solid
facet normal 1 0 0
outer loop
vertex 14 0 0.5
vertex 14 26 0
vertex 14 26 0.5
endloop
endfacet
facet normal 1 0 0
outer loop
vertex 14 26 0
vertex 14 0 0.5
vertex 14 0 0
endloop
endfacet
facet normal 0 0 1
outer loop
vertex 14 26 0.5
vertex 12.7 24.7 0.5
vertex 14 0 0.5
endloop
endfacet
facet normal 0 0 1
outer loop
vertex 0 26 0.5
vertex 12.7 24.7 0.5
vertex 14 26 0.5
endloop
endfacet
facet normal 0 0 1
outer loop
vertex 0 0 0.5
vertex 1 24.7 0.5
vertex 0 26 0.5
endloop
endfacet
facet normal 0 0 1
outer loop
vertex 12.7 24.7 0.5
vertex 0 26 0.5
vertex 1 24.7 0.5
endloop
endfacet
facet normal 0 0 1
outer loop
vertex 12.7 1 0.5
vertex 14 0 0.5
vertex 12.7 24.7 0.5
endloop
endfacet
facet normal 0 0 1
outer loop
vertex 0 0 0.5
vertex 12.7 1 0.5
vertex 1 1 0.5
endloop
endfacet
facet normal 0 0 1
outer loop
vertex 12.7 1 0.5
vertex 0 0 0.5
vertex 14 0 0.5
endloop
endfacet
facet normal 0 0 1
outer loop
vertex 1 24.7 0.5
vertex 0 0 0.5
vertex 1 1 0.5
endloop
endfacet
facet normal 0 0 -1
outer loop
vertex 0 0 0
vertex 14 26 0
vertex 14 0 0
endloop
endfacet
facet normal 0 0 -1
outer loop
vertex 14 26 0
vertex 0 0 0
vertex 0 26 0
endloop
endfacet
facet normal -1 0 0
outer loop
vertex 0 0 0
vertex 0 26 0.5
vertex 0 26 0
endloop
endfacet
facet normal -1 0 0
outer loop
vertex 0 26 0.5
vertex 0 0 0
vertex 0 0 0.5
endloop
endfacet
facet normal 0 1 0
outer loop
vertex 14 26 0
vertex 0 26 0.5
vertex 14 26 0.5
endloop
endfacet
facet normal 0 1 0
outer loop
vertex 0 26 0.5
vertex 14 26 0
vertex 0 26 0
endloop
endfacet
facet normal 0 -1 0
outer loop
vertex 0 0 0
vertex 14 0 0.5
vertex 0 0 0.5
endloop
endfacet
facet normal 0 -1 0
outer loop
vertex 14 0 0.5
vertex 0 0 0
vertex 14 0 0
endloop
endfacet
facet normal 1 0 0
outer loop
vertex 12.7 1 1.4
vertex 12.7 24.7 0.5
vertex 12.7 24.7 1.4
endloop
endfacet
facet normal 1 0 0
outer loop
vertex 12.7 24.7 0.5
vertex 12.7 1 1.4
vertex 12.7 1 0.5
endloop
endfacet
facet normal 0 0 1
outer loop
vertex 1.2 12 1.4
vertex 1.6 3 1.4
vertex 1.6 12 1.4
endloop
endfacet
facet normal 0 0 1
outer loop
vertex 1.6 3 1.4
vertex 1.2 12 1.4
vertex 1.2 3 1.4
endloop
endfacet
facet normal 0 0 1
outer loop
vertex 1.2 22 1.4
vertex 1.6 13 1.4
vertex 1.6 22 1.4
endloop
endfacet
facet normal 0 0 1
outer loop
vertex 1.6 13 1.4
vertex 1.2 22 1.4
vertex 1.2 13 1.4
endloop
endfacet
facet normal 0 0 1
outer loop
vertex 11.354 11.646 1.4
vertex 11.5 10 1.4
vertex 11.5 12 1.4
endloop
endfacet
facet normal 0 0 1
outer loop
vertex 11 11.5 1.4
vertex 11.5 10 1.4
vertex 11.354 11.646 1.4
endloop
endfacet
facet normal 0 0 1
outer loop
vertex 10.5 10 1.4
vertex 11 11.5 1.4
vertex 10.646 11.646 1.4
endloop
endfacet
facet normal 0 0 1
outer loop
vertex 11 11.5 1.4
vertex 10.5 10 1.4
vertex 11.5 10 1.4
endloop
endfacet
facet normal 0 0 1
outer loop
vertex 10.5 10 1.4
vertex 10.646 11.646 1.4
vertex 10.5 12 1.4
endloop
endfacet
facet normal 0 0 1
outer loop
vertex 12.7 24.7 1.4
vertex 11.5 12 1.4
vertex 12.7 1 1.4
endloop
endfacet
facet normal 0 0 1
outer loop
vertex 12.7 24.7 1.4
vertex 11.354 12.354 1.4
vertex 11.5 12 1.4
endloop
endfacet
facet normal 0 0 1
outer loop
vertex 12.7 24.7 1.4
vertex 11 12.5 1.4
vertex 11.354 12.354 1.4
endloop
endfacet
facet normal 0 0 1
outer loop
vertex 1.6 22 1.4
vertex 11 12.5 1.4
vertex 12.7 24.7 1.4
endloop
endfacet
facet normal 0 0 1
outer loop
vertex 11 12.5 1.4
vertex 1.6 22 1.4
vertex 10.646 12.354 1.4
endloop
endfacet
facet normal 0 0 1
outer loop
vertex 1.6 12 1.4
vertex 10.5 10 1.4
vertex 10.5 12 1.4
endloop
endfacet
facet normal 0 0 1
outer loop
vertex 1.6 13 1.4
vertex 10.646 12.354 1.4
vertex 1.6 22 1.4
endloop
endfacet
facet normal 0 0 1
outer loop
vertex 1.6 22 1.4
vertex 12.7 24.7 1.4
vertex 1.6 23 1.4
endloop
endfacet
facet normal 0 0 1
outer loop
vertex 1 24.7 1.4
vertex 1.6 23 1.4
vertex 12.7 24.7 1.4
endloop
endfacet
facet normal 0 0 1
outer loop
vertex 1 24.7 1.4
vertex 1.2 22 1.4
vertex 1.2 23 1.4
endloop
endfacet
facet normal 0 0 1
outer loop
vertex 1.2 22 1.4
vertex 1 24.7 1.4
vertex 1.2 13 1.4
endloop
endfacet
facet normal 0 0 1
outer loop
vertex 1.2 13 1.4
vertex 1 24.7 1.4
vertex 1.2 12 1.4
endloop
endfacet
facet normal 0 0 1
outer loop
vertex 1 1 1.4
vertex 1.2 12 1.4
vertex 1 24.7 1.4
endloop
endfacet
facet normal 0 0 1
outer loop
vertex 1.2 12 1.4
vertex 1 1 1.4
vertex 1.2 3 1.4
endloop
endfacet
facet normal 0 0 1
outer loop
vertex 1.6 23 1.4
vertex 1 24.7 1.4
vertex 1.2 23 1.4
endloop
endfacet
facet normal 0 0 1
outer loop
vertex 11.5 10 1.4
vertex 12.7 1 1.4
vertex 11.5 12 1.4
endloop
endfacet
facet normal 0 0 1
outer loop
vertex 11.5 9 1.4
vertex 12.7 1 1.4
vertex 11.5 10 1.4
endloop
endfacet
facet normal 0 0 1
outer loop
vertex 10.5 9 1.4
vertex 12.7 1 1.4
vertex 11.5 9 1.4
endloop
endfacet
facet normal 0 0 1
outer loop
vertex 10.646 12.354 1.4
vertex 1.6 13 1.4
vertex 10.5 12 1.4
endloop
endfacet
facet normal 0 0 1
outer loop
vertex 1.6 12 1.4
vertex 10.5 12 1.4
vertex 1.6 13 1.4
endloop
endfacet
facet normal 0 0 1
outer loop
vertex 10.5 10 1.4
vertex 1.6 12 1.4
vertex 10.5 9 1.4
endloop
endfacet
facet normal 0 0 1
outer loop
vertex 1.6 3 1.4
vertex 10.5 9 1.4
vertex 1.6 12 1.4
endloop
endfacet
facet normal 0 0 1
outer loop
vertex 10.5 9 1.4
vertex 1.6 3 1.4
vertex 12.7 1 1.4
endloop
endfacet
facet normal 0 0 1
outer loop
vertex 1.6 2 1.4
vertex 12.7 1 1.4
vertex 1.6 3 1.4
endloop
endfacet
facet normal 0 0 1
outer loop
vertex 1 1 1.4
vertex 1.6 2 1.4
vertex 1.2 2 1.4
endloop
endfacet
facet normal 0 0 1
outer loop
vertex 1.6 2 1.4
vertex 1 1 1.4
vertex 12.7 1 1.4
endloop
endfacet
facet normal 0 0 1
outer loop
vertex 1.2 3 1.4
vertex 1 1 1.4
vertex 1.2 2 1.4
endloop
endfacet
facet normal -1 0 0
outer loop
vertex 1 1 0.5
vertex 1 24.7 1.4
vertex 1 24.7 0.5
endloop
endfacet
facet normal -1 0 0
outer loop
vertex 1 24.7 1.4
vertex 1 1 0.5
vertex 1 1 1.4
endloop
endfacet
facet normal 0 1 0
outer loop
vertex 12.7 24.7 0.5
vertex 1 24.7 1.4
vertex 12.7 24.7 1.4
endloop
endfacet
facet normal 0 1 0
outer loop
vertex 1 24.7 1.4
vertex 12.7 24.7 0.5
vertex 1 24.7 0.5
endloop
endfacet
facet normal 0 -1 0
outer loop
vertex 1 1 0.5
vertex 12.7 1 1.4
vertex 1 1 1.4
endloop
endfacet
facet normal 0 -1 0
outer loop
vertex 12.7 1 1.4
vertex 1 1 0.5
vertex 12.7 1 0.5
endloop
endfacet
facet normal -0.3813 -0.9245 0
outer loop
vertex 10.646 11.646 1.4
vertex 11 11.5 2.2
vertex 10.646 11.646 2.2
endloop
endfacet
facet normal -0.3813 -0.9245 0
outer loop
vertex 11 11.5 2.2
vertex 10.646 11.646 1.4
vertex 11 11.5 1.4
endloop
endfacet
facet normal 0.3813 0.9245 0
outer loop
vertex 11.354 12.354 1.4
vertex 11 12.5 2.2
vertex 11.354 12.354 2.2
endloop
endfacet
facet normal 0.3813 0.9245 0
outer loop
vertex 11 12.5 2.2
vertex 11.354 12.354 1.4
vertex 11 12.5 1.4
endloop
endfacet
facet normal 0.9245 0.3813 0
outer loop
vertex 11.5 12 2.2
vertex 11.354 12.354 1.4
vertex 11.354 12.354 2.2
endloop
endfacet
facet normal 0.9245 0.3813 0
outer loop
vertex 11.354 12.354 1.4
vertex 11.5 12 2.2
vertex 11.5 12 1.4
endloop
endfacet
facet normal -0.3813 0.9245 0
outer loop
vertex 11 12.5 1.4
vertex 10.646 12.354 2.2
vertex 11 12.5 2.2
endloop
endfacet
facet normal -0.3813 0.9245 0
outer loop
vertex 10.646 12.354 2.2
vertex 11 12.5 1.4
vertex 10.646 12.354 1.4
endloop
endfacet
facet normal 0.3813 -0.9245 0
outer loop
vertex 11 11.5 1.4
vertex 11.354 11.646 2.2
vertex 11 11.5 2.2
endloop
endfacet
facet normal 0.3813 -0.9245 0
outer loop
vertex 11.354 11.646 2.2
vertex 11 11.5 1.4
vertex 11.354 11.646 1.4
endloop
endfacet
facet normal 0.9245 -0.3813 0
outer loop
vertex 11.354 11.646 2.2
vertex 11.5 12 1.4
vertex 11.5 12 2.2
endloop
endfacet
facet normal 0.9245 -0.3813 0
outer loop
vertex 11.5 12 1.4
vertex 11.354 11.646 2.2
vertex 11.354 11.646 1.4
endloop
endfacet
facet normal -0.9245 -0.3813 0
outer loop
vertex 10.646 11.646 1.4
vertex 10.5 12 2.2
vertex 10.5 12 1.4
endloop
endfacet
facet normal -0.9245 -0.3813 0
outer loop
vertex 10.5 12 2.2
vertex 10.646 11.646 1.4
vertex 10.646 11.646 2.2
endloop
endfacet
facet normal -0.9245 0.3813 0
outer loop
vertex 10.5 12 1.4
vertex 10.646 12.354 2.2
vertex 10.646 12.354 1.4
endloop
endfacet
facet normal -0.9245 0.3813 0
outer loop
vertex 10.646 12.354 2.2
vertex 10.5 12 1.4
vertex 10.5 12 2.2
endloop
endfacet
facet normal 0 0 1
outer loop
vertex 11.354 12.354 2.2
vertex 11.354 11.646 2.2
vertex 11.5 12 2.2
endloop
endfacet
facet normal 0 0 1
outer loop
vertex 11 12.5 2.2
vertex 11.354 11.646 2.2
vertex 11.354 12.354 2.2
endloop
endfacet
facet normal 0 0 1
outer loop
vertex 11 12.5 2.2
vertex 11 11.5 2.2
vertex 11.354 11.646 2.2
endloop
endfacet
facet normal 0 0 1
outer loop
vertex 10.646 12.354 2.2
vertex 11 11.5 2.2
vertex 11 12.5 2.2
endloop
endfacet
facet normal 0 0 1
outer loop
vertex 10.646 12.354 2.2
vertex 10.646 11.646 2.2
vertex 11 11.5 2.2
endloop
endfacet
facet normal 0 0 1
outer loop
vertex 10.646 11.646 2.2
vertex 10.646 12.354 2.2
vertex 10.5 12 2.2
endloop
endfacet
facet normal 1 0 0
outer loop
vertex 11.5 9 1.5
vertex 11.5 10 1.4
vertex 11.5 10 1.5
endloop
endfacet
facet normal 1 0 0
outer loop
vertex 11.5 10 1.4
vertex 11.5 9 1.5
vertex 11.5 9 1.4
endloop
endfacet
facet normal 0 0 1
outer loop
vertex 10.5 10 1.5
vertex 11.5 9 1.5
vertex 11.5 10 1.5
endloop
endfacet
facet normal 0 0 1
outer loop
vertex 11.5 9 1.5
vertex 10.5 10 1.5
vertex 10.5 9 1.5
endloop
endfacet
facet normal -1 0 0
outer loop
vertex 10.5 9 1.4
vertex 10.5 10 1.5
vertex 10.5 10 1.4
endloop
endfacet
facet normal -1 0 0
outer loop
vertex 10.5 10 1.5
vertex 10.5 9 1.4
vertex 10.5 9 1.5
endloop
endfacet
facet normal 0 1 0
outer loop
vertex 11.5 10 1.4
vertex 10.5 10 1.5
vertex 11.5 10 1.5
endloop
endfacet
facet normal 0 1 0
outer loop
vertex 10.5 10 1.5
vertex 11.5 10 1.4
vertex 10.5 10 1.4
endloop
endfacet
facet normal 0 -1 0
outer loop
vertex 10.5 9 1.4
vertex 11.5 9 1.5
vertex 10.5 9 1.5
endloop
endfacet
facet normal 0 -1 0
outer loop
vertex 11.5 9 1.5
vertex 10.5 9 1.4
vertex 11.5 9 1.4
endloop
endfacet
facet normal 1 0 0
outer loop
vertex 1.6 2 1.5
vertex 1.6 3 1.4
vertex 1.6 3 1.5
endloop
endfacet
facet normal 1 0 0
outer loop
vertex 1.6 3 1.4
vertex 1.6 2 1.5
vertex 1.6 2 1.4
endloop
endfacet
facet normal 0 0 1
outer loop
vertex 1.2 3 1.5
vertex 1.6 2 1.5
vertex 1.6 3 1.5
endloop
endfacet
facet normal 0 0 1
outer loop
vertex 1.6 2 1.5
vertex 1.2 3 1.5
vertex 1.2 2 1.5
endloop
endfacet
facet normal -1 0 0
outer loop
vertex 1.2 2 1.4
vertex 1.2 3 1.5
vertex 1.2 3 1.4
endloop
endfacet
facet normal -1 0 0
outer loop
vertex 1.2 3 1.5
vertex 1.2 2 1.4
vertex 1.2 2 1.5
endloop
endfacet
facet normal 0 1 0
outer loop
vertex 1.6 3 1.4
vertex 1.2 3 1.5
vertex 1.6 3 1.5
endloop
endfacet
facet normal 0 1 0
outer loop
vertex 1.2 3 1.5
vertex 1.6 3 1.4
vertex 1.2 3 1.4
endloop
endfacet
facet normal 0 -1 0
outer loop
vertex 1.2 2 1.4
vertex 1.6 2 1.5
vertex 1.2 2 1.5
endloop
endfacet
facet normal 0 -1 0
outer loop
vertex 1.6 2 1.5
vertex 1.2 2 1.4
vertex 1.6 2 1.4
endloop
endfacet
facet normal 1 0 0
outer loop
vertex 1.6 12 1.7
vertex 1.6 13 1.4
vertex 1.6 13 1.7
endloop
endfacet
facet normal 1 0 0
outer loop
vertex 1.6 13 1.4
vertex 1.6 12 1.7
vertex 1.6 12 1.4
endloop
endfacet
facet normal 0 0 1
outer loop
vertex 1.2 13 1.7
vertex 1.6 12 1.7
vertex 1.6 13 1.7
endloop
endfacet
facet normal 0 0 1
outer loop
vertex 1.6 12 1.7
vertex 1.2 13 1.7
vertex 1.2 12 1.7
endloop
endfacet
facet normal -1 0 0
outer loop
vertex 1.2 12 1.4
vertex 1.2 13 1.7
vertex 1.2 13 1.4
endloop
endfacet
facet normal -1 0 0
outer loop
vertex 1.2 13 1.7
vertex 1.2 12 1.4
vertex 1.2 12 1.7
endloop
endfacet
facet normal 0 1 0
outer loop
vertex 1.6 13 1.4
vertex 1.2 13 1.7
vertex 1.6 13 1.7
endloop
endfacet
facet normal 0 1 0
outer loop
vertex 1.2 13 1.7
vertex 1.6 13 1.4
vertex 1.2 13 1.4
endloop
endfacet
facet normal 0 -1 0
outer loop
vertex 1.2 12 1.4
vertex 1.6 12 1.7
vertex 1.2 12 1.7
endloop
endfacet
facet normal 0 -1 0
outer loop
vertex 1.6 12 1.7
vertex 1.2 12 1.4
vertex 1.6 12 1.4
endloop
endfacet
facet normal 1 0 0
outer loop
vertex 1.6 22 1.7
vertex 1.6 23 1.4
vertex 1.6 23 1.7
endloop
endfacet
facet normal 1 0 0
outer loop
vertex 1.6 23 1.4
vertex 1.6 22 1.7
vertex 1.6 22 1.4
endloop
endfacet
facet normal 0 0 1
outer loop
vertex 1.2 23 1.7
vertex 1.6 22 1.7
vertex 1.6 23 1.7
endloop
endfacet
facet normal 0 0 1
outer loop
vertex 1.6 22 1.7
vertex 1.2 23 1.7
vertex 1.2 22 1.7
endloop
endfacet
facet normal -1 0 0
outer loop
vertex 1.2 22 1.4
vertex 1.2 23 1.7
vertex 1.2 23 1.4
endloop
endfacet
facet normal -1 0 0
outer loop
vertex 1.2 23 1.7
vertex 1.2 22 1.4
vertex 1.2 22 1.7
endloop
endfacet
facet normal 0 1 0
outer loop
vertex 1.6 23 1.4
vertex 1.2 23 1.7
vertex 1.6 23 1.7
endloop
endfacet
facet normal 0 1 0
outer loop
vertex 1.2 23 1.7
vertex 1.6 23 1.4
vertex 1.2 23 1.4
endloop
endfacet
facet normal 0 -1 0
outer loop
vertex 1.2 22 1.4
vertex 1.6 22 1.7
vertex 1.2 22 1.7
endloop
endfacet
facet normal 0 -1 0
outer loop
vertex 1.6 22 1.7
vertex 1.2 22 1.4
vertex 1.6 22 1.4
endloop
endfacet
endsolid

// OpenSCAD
// file: fb_globals.scad
/// @file fb_globals.scad
///
/// @brief project footbridge globals
///
/// @author © Dave Harris 2022
///

$fa = 1;   // Fragment angle
$fs = 0.4; // Fragment size resolution

// global constants
//------------------

H_bridge = 49.5; // platform to bridge
W_bridge = 36;   // width of bridge
                 // wider than walkway
                 
H_walk   = 36;   // height of walkway
W_walk   = 34.7; // width of walkway

Steps    = 27;   // number of steps
W_stairs = 32;   // width ~ 9'6" @ H0
L_tread  = 3.5;  // tread ~ 12" @ H0
L_stairs = L_tread * (Steps +1);
H_rise   = H_bridge / (Steps +1); 
  // rise is 1.7678, not H0 1.75 (6")

W_lift   = 34;

W_build  = W_stairs +2;
L_build  = L_stairs+W_bridge+W_lift +2;


H_door   = 28;
W_door   = 18;

H_window = 6;
W_window = 16;


W_plat45  = 93.9;
W_track34 = 87.9;
W_plat23  = 93.8;
W_track12 = 87.9;

W_plat23edge =
   ( W_plat23 - W_stairs +2 ) /2 ;
W_plat45edge =
   ( W_plat45 - W_stairs +2 ) /2 ;
   
L_span34 = W_track34 + W_plat45edge + W_plat23edge;


// eof
// main file
/// @file fb_maintdoor.scad
///
/// @brief footbridge maintenance door
///
/// @author © Dave Harris 2022
/// 


include <fb_globals.scad>;


cube( // backing
  [ 12 +2
  , H_door - 4 +2
  , 0.5  ]
);

color("blue")
{
    translate( // door
      [ 1.0
      , 1
      , 0
    ]
    ) cube(
          [ 12 -0.3
          , H_door - 4 -0.3
          , 1.4  ]
       ); 
}

translate( // knob
  [ 11
  , H_door/2 -2
  , 0  ]
) cylinder( h=2.2, r=0.5 );
 
translate( // lock plate
  [ 10.5
  , H_door/2 -5
  , 1  ]
) cube(
    [ 1
    , 1
    , 0.5 ]
  );
 
translate( // hinge #1
  [ 1.2
  , 2
  , 1  ]
) cube(
    [ 0.4
    , 1
    , 0.7 ]
  );
translate( // hinge #2
  [ 1.2
  , 12
  , 1  ]
) cube(
    [ 0.4
    , 1
    , 0.7 ]
  );
translate( // hinge #3
  [ 1.2
  , 22
  , 1  ]
) cube(
    [ 0.4
    , 1
    , 0.7 ]
  );
 
